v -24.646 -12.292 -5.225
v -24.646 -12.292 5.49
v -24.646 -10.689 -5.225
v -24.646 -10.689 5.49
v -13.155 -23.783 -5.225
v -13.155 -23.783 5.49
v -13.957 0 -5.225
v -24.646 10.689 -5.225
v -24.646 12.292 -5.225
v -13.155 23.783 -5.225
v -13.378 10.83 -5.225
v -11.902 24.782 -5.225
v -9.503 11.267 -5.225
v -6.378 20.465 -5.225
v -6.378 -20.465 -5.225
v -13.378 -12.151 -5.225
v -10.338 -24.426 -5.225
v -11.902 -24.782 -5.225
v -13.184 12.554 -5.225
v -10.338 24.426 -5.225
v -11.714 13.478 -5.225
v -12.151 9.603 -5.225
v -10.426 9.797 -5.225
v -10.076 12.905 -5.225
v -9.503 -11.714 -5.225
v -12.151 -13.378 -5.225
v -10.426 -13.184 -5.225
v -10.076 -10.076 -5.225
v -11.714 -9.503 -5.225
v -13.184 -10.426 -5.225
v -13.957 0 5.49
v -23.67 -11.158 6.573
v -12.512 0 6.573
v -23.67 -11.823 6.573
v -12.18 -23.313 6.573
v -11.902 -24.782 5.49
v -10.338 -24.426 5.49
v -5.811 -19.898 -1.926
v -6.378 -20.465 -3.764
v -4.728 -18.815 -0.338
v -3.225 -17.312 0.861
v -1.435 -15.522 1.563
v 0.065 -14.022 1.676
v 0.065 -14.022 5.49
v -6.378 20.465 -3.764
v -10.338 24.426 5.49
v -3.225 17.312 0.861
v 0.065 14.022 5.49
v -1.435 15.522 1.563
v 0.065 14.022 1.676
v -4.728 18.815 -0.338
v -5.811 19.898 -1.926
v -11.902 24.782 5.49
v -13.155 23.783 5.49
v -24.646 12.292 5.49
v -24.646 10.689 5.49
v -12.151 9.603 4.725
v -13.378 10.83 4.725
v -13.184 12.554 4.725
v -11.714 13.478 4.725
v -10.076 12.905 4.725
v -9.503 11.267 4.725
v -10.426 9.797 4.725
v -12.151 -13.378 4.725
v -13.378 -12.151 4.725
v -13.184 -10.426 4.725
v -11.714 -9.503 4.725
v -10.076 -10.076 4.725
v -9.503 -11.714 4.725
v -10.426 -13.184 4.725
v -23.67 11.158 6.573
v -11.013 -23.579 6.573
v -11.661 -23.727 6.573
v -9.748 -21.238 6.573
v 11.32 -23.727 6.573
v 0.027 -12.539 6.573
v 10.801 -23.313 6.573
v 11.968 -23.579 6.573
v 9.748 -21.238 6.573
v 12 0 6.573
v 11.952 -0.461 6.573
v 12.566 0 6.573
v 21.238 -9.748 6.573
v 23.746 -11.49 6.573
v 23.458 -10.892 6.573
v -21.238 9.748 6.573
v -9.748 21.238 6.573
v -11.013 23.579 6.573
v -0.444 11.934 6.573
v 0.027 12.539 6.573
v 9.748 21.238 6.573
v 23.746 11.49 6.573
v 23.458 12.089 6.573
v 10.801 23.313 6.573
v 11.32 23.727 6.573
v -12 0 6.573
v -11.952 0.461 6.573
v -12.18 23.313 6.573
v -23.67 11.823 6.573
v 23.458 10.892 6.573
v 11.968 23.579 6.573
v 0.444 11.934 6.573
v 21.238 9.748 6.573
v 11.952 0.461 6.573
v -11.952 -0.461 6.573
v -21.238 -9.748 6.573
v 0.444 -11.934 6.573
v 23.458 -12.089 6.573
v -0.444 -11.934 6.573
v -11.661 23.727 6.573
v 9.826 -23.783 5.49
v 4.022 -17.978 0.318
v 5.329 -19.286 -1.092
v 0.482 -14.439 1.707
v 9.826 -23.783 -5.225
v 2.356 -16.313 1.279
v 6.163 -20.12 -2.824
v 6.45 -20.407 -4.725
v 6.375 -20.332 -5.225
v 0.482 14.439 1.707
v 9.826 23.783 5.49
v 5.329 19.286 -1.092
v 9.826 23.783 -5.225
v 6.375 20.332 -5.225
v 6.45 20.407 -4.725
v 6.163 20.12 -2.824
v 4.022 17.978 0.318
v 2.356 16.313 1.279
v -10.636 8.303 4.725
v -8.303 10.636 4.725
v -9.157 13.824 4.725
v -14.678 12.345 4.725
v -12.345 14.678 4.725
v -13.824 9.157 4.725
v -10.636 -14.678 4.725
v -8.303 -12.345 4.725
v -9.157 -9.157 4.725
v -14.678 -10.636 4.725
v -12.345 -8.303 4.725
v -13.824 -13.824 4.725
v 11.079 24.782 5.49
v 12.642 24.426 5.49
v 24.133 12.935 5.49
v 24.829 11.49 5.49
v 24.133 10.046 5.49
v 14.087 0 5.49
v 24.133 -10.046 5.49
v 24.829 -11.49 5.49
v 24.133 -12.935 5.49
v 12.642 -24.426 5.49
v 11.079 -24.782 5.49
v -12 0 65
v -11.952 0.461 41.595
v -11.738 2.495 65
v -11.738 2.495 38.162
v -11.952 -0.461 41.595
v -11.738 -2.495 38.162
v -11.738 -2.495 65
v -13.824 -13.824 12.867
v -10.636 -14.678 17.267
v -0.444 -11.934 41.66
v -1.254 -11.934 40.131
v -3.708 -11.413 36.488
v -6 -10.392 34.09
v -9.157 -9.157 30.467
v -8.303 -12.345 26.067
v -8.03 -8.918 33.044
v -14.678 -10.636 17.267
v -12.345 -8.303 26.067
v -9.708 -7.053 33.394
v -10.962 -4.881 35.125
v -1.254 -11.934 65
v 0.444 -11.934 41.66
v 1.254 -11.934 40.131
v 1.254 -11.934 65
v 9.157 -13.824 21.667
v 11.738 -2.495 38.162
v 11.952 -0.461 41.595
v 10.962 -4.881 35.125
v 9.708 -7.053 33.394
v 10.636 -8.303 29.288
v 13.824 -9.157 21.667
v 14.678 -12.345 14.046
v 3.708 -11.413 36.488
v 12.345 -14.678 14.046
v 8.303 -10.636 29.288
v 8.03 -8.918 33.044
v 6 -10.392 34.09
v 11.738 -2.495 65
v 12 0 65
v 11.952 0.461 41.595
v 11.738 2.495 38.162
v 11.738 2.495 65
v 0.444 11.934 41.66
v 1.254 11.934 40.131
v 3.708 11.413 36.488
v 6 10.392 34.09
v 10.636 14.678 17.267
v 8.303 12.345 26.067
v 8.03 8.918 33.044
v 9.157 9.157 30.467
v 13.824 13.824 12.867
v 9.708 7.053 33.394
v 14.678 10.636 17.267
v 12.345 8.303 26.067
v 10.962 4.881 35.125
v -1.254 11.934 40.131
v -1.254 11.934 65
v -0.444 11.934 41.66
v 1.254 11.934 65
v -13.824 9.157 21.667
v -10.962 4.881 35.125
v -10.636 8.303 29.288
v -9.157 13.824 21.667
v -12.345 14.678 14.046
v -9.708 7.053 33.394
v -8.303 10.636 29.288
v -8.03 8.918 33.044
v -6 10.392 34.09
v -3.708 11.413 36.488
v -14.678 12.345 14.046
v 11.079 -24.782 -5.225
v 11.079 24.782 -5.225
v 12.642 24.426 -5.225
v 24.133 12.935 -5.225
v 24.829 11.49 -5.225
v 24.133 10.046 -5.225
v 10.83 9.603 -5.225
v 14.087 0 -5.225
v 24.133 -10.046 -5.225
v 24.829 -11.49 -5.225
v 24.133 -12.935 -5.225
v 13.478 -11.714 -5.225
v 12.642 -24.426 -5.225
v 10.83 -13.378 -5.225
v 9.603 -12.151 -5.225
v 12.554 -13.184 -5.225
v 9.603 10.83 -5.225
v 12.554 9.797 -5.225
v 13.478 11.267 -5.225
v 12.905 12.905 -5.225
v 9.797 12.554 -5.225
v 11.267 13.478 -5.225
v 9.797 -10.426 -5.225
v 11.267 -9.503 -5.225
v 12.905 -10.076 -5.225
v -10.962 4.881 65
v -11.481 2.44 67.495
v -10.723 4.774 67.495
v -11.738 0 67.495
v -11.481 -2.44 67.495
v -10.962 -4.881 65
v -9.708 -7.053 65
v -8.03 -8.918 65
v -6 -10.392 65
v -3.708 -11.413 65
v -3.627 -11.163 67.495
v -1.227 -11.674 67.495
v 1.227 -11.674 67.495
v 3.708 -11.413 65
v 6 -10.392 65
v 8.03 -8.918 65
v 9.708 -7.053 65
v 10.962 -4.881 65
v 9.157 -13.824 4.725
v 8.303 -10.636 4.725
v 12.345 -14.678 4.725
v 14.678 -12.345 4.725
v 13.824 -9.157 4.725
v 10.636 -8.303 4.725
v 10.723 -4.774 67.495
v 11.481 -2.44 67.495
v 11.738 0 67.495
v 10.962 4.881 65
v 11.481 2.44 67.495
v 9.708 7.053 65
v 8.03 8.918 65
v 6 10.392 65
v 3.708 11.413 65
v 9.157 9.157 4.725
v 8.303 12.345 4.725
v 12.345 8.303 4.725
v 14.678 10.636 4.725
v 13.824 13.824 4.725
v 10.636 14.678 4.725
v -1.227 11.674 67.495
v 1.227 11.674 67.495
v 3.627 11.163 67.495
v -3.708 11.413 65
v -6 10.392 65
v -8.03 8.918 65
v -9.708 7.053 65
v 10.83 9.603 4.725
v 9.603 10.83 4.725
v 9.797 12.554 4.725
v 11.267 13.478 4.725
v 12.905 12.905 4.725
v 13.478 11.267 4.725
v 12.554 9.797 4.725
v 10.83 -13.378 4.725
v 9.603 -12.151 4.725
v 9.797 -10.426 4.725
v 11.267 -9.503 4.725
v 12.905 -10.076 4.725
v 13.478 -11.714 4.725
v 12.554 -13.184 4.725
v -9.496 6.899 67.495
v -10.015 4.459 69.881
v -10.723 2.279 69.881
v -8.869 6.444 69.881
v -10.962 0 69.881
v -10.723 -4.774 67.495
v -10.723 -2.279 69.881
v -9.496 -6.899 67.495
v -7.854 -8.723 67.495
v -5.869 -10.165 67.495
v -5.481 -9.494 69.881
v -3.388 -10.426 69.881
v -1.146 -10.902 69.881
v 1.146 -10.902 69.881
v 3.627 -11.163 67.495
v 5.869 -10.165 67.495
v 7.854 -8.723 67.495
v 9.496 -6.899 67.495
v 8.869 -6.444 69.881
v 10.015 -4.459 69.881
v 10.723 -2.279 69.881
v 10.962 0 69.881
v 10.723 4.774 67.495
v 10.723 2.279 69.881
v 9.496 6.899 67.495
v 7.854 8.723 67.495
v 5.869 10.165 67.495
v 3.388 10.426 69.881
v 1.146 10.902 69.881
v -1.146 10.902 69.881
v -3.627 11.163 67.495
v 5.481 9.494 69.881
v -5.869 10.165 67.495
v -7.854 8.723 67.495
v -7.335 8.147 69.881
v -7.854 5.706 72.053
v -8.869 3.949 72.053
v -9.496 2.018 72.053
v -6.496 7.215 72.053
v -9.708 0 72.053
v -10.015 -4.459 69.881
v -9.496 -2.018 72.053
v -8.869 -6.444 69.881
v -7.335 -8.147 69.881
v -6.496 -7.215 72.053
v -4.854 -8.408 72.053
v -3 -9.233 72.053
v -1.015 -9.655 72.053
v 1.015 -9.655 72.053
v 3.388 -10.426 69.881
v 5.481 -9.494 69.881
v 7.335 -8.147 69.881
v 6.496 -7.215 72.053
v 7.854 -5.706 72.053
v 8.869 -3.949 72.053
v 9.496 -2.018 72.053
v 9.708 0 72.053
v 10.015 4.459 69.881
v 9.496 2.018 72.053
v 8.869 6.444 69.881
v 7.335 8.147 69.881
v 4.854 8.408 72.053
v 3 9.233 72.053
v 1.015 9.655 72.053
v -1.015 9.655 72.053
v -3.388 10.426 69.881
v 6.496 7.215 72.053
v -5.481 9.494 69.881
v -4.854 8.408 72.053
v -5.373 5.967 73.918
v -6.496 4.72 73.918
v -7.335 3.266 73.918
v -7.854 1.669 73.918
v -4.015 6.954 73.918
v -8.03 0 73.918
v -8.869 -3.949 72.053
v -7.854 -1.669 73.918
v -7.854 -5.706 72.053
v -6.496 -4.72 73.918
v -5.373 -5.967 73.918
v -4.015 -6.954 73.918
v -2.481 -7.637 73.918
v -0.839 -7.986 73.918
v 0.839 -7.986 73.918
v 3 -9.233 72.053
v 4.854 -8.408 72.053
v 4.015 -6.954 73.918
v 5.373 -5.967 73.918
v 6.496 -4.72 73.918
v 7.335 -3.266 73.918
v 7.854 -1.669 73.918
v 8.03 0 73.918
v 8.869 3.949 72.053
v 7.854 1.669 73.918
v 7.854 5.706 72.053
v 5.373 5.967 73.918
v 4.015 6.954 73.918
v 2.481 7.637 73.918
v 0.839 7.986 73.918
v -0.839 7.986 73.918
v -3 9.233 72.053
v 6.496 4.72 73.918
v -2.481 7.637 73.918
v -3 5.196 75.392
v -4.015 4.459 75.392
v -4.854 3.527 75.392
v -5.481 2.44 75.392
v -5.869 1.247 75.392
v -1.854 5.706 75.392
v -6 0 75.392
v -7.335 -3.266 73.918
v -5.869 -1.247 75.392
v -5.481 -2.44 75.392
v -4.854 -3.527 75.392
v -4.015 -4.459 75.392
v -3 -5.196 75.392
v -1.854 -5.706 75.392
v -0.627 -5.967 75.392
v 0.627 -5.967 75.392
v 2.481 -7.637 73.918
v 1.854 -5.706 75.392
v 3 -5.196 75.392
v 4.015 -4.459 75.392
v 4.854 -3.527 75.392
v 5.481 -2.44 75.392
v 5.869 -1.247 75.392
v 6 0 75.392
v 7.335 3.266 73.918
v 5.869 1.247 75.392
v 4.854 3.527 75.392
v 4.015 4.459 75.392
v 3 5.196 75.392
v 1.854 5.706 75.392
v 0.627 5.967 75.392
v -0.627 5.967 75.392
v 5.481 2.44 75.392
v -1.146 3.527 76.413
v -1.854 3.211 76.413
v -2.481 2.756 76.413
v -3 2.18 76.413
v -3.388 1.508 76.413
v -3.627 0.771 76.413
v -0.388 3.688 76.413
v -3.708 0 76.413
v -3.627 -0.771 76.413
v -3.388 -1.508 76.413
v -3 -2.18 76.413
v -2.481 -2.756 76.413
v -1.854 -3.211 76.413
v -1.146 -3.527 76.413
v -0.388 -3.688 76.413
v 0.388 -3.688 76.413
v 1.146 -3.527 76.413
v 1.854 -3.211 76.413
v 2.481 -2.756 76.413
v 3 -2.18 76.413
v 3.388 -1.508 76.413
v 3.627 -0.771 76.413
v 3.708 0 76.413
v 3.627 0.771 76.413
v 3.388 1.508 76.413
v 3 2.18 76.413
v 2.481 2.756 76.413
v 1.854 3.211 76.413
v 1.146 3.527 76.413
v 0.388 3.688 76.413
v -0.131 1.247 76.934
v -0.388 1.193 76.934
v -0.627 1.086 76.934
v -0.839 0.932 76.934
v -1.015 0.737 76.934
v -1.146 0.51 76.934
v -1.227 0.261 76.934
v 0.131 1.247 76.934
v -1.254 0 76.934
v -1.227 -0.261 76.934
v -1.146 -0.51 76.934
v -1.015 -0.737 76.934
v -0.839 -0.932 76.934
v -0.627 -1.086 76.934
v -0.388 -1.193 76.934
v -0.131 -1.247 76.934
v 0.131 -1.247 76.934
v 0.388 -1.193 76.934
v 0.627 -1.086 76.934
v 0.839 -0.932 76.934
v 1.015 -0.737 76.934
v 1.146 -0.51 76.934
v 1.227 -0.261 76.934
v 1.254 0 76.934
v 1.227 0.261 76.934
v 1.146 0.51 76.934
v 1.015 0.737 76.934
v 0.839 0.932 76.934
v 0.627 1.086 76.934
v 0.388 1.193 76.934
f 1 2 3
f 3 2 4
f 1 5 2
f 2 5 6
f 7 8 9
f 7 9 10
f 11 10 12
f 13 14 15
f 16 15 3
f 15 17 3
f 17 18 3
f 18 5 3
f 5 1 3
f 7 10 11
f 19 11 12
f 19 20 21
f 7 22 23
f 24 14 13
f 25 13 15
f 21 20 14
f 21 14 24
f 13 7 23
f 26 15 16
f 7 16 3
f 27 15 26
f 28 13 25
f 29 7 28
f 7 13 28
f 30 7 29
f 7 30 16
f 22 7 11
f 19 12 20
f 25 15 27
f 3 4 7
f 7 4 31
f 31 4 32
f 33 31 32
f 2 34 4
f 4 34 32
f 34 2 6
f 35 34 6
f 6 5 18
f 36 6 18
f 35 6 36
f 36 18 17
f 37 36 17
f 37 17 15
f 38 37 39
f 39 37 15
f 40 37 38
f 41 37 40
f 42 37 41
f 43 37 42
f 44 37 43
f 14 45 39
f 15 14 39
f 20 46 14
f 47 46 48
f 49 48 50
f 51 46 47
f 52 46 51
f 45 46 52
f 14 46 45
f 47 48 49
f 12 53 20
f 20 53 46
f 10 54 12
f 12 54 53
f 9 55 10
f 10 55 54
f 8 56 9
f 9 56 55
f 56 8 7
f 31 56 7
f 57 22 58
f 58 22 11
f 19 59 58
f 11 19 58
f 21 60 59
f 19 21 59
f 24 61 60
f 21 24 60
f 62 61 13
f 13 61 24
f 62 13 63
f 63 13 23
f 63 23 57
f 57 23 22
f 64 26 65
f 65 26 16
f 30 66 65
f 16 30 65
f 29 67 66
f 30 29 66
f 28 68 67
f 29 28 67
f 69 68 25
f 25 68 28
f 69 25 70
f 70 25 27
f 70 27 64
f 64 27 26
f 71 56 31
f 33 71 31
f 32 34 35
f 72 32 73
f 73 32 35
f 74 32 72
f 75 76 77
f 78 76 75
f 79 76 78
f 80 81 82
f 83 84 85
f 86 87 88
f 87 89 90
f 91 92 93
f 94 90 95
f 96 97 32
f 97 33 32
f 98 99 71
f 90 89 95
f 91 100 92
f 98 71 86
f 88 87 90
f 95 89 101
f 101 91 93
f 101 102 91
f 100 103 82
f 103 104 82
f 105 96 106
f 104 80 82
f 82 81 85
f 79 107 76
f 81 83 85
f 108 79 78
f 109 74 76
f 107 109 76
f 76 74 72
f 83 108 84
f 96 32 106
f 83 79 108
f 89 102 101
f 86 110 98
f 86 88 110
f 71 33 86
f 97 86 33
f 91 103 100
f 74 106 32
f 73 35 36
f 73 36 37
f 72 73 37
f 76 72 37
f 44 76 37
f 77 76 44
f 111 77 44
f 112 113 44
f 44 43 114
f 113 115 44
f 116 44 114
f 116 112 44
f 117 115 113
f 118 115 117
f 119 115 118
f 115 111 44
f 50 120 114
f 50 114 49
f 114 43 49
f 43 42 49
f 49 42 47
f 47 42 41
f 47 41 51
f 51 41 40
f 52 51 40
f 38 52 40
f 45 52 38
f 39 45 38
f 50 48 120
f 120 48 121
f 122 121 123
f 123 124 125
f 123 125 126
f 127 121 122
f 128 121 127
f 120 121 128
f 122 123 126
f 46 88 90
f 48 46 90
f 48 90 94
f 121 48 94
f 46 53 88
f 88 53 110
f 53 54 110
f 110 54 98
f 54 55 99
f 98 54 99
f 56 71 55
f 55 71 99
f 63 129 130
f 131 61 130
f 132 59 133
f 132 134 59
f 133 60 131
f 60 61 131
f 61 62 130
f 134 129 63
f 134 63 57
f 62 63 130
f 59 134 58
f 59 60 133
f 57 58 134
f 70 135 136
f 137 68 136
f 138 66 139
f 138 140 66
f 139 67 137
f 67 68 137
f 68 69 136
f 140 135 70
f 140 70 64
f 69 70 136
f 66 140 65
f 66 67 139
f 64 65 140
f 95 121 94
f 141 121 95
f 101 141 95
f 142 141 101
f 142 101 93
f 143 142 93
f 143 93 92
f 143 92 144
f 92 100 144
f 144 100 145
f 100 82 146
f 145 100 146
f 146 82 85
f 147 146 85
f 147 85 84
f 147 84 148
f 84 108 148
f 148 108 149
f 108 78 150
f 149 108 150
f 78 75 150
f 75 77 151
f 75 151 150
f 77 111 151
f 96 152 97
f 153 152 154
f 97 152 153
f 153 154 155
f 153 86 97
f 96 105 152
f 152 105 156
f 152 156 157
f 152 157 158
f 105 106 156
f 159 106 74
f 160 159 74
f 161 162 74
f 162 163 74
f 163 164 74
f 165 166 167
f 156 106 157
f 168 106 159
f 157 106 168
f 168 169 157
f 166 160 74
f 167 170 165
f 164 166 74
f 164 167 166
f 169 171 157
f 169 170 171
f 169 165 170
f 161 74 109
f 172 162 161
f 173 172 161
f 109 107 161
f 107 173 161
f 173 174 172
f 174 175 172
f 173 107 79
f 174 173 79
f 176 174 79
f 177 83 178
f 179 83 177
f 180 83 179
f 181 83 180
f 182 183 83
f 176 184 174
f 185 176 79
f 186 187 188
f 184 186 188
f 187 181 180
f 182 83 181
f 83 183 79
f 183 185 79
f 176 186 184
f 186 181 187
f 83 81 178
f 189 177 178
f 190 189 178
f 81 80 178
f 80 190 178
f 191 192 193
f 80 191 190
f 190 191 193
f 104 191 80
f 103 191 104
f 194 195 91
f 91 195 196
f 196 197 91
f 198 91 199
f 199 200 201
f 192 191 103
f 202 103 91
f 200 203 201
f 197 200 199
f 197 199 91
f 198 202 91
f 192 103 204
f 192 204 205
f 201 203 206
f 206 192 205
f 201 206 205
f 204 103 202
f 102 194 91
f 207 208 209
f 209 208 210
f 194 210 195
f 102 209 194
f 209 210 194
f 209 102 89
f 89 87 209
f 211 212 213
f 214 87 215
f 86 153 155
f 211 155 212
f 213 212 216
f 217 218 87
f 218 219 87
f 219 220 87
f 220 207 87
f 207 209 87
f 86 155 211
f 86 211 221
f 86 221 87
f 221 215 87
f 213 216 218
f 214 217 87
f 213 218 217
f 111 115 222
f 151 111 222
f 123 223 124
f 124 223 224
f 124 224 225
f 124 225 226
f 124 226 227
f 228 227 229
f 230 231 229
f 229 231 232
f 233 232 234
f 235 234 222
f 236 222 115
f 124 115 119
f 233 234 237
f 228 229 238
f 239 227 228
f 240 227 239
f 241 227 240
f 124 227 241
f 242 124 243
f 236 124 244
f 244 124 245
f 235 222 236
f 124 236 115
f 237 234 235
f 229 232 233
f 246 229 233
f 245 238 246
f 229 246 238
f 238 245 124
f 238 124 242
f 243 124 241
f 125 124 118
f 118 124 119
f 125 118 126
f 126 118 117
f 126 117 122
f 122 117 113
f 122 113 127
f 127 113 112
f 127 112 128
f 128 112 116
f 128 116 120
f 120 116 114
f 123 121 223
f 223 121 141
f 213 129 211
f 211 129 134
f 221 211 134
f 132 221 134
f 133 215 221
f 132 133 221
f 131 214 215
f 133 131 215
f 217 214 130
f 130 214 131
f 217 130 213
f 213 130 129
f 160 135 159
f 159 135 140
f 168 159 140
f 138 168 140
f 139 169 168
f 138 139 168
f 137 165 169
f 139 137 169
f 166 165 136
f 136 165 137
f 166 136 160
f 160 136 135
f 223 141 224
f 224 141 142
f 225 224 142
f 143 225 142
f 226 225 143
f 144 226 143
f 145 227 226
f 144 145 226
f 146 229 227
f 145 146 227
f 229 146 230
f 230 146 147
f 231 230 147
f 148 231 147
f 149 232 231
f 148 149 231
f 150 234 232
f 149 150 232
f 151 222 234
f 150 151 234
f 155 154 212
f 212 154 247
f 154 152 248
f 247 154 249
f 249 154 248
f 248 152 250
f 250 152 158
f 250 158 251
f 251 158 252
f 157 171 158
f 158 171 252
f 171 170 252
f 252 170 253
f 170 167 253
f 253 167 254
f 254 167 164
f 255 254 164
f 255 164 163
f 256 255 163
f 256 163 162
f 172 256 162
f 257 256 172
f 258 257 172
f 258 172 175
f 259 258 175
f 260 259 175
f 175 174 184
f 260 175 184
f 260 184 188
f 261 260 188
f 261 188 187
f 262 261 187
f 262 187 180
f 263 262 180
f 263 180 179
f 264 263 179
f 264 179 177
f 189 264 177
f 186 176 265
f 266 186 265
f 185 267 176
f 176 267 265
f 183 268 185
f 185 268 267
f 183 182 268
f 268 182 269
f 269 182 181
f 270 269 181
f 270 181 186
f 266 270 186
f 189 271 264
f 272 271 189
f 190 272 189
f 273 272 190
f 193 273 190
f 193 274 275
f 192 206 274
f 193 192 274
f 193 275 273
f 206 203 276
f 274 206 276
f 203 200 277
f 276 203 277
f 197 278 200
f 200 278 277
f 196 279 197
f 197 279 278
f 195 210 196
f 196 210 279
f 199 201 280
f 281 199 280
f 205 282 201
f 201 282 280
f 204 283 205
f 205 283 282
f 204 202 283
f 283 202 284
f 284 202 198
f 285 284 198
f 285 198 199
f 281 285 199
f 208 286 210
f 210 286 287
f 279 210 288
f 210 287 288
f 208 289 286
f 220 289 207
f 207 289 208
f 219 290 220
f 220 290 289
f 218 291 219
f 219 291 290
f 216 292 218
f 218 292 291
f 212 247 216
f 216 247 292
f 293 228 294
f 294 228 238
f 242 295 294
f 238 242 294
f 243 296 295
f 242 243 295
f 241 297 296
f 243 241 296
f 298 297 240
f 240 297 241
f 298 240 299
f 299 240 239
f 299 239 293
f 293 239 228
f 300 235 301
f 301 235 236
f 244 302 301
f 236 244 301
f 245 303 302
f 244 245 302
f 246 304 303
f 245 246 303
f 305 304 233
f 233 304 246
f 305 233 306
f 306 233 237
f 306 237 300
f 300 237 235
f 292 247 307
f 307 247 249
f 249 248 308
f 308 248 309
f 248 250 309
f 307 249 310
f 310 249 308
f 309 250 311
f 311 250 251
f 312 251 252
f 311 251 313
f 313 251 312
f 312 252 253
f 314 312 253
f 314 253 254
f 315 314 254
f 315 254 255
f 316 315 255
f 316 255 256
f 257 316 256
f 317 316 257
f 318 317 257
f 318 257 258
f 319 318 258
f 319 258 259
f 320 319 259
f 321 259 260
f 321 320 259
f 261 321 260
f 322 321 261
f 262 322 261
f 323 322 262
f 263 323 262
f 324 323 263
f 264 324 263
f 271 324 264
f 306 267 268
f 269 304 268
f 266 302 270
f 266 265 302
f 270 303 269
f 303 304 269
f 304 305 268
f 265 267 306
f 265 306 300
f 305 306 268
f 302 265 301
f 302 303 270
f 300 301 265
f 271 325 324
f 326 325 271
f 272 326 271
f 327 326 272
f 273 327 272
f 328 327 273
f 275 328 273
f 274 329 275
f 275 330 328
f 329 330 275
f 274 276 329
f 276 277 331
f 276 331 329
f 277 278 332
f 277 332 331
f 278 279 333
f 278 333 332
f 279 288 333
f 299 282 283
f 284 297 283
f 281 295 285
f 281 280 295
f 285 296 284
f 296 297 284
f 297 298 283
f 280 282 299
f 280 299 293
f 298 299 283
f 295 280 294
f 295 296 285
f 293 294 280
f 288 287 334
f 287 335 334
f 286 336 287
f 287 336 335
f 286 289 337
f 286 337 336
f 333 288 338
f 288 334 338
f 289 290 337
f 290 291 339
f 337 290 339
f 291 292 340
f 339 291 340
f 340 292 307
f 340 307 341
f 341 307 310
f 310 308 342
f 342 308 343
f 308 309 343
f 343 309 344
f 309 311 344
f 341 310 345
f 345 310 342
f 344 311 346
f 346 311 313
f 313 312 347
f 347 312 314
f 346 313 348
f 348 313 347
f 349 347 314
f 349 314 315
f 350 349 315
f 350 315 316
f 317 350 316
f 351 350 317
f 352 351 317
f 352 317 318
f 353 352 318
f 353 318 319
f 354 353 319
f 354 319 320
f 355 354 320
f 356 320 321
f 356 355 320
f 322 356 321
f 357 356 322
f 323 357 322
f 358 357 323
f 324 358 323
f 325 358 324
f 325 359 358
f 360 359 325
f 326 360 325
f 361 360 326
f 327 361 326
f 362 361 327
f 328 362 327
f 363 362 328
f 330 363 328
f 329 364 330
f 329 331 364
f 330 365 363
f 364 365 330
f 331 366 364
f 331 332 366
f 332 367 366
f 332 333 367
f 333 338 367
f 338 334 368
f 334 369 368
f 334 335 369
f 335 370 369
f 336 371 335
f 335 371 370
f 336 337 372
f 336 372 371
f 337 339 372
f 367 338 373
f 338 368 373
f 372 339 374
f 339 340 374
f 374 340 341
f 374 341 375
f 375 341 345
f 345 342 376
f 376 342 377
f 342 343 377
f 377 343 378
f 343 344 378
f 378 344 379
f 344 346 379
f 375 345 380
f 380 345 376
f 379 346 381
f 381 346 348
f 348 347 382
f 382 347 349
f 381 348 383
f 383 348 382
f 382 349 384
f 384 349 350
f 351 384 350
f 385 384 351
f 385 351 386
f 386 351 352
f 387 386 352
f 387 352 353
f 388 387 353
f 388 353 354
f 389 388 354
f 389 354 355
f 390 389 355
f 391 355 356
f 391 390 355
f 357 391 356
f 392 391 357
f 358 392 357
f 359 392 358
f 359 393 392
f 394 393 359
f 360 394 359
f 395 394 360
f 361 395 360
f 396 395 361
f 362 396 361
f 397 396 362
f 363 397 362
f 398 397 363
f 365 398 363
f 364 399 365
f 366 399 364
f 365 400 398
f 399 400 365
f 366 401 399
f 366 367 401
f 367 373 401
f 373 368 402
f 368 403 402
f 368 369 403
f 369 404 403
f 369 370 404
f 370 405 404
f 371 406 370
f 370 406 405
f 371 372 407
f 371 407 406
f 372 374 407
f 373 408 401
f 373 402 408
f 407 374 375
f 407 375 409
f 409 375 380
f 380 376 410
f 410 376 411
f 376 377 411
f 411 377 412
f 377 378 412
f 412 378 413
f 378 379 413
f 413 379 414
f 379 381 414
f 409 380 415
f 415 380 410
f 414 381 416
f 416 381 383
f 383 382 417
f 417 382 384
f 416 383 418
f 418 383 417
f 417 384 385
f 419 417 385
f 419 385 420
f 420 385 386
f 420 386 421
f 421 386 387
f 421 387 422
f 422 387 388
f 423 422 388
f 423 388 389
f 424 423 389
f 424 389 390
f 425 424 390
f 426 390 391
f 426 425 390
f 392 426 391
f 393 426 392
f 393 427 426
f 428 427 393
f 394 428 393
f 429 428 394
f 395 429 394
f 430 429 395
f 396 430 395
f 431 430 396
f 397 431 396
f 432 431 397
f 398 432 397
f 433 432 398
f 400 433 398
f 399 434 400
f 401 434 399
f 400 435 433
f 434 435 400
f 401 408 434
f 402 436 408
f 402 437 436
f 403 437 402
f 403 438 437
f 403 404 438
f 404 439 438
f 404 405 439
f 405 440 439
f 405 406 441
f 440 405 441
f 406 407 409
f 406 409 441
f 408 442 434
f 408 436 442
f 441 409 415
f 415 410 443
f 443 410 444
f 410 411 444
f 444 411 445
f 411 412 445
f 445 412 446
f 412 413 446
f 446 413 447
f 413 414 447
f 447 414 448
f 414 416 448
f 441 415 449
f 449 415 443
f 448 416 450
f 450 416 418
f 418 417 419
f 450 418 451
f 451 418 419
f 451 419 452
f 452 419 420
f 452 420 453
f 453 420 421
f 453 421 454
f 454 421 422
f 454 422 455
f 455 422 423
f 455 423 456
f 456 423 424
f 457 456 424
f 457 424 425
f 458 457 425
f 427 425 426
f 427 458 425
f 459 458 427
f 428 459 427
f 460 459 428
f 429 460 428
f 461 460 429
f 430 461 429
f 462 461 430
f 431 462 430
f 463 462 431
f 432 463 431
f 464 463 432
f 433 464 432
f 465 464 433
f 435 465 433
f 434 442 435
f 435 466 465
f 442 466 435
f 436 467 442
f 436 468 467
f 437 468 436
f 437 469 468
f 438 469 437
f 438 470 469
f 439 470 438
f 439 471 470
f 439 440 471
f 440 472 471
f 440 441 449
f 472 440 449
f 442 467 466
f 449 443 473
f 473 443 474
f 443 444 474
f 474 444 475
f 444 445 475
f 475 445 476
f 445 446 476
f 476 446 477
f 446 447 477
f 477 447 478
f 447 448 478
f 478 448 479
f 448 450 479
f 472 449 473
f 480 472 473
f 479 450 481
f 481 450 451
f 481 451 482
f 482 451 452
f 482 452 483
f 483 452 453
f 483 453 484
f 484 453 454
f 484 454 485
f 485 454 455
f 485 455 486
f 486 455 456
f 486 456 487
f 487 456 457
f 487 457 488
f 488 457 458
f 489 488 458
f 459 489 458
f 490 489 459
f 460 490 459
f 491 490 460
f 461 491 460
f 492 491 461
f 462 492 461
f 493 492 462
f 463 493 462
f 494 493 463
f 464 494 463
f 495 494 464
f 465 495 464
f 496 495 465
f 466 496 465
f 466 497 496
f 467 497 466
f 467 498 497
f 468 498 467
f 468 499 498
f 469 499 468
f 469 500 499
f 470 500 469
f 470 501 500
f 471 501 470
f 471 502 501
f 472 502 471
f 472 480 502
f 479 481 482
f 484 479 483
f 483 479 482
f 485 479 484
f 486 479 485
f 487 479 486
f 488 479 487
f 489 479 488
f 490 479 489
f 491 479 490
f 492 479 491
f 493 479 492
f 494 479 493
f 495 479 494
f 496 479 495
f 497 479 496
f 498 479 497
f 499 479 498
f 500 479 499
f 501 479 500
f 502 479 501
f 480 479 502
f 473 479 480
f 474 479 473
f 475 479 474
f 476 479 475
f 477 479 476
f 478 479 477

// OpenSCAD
// file: model_dims.scad
// motormounts
m_h = c_d/2 + 3; 	// height of motor mount
x_1 = 16.25;		// distance from centre of motor mount to centre of screwholes
m_w = x_1; 			// width of motor mount

// body
ah_l = 55 ;//arm_holder_length
ch_full_l = 90; // full width of chassis
ch_full_h = 4.05; // height of chassis layer
// file: hardware_dims.scad
c_d = 12.9; 		// diameter of carbon fiber
s_d = 4; 			// diameter of silver screw holes

// units of PDB
pdb_bw = 50; // board_width
pdb_ch_d = 12.7; //centre_hole_dia = 12.8
sh_d = 3.2; //small_hole_dia = 3
dh_sd = 7.9; //small_hole_dist_from_side = 7.9
lh_sd = 19; //large_hole_dist_from_side = 19
p_w = 7.7; //pin_width = 7.7
d_diag = 13.9; //deans_diag = 13.9
p_sd = 8.4; //pin_dist_from_side = 8.4
d_sd = 20.8; //deans_dist_from_side = 20.8
sh_dc = 16.2; // small hole (orthogonal) distance from center
// main file
// tiny motormounts

include <hardware_dims.scad>
include <model_dims.scad>

l_h=70;
noodle_r = 12;

difference() {
	/*
	union() {
	rotate([0,0,45]) cube(size=[1*m_w,3*m_w,m_h], center=true);
	rotate([0,0,-45]) cube(size=[1*m_w,3*m_w,m_h], center=true);
	}
	*/
	union (){
		//landing foot
		translate([0,0,30]) rotate([0,0,0]) cylinder(h=l_h, r=noodle_r, center=true);
		translate([0,0,l_h-5]) sphere(r=noodle_r, center=true);
		// structure
		rotate([90,0,45]) translate ([0,0,-m_w/2]) linear_extrude(height = m_w) polygon(points=[[0,0],[1.5*m_w,0],[0,4*m_w]], paths=[[0,1,2]]);
		rotate([90,0,-135]) translate ([0,0,-m_w/2]) linear_extrude(height = m_w) polygon(points=[[0,0],[1.5*m_w,0],[0,4*m_w]], paths=[[0,1,2]]);
		rotate([90,0,135]) translate ([0,0,-m_w/2]) linear_extrude(height = m_w) polygon(points=[[0,0],[1.5*m_w,0],[0,4*m_w]], paths=[[0,1,2]]);
		rotate([90,0,-45]) translate ([0,0,-m_w/2]) linear_extrude(height = m_w) polygon(points=[[0,0],[1.5*m_w,0],[0,4*m_w]], paths=[[0,1,2]]);
		
		minkowski (){
			union() {
				rotate([0,0,45]) cube(size=[1*m_w,3*m_w,m_h], center=true);
				rotate([0,0,-45]) cube(size=[1*m_w,3*m_w,m_h], center=true);
			}
			sphere(r=2);
		}
	}
	union() {
		// tube
		translate([0,0,-m_h/2]) rotate([90,0,0]) cylinder(h=4*m_w, r=c_d/2, center=true);
		// holes
		rotate([0,0,45]){
			translate([x_1,0,0]) cylinder(h=2*m_h, r=s_d/2,center=true);
			translate([-x_1,0,0]) cylinder(h=2*m_h, r=s_d/2,center=true);
			translate([0,-x_1,0]) cylinder(h=2*m_h, r=s_d/2,center=true);
			translate([0,x_1,0]) cylinder(h=2*m_h, r=s_d/2,center=true);
			// nut holders
			translate([-x_1,0,0.5*m_h]) cylinder(h=3*m_h, r=s_d-0.7, $fn=6);
			translate([x_1,0,0.5*m_h]) cylinder(h=3*m_h, r=s_d-0.7, $fn=6);
			translate([0,-x_1,0.5*m_h]) cylinder(h=3*m_h, r=s_d-0.7, $fn=6);
			translate([0,x_1,0.5*m_h]) cylinder(h=3*m_h, r=s_d-0.7, $fn=6);

		}
	}
	translate([0,0,-(2+0.5*m_h)]) cube(size=[5+3*m_w,5+3*m_w,3], center=true);
}
